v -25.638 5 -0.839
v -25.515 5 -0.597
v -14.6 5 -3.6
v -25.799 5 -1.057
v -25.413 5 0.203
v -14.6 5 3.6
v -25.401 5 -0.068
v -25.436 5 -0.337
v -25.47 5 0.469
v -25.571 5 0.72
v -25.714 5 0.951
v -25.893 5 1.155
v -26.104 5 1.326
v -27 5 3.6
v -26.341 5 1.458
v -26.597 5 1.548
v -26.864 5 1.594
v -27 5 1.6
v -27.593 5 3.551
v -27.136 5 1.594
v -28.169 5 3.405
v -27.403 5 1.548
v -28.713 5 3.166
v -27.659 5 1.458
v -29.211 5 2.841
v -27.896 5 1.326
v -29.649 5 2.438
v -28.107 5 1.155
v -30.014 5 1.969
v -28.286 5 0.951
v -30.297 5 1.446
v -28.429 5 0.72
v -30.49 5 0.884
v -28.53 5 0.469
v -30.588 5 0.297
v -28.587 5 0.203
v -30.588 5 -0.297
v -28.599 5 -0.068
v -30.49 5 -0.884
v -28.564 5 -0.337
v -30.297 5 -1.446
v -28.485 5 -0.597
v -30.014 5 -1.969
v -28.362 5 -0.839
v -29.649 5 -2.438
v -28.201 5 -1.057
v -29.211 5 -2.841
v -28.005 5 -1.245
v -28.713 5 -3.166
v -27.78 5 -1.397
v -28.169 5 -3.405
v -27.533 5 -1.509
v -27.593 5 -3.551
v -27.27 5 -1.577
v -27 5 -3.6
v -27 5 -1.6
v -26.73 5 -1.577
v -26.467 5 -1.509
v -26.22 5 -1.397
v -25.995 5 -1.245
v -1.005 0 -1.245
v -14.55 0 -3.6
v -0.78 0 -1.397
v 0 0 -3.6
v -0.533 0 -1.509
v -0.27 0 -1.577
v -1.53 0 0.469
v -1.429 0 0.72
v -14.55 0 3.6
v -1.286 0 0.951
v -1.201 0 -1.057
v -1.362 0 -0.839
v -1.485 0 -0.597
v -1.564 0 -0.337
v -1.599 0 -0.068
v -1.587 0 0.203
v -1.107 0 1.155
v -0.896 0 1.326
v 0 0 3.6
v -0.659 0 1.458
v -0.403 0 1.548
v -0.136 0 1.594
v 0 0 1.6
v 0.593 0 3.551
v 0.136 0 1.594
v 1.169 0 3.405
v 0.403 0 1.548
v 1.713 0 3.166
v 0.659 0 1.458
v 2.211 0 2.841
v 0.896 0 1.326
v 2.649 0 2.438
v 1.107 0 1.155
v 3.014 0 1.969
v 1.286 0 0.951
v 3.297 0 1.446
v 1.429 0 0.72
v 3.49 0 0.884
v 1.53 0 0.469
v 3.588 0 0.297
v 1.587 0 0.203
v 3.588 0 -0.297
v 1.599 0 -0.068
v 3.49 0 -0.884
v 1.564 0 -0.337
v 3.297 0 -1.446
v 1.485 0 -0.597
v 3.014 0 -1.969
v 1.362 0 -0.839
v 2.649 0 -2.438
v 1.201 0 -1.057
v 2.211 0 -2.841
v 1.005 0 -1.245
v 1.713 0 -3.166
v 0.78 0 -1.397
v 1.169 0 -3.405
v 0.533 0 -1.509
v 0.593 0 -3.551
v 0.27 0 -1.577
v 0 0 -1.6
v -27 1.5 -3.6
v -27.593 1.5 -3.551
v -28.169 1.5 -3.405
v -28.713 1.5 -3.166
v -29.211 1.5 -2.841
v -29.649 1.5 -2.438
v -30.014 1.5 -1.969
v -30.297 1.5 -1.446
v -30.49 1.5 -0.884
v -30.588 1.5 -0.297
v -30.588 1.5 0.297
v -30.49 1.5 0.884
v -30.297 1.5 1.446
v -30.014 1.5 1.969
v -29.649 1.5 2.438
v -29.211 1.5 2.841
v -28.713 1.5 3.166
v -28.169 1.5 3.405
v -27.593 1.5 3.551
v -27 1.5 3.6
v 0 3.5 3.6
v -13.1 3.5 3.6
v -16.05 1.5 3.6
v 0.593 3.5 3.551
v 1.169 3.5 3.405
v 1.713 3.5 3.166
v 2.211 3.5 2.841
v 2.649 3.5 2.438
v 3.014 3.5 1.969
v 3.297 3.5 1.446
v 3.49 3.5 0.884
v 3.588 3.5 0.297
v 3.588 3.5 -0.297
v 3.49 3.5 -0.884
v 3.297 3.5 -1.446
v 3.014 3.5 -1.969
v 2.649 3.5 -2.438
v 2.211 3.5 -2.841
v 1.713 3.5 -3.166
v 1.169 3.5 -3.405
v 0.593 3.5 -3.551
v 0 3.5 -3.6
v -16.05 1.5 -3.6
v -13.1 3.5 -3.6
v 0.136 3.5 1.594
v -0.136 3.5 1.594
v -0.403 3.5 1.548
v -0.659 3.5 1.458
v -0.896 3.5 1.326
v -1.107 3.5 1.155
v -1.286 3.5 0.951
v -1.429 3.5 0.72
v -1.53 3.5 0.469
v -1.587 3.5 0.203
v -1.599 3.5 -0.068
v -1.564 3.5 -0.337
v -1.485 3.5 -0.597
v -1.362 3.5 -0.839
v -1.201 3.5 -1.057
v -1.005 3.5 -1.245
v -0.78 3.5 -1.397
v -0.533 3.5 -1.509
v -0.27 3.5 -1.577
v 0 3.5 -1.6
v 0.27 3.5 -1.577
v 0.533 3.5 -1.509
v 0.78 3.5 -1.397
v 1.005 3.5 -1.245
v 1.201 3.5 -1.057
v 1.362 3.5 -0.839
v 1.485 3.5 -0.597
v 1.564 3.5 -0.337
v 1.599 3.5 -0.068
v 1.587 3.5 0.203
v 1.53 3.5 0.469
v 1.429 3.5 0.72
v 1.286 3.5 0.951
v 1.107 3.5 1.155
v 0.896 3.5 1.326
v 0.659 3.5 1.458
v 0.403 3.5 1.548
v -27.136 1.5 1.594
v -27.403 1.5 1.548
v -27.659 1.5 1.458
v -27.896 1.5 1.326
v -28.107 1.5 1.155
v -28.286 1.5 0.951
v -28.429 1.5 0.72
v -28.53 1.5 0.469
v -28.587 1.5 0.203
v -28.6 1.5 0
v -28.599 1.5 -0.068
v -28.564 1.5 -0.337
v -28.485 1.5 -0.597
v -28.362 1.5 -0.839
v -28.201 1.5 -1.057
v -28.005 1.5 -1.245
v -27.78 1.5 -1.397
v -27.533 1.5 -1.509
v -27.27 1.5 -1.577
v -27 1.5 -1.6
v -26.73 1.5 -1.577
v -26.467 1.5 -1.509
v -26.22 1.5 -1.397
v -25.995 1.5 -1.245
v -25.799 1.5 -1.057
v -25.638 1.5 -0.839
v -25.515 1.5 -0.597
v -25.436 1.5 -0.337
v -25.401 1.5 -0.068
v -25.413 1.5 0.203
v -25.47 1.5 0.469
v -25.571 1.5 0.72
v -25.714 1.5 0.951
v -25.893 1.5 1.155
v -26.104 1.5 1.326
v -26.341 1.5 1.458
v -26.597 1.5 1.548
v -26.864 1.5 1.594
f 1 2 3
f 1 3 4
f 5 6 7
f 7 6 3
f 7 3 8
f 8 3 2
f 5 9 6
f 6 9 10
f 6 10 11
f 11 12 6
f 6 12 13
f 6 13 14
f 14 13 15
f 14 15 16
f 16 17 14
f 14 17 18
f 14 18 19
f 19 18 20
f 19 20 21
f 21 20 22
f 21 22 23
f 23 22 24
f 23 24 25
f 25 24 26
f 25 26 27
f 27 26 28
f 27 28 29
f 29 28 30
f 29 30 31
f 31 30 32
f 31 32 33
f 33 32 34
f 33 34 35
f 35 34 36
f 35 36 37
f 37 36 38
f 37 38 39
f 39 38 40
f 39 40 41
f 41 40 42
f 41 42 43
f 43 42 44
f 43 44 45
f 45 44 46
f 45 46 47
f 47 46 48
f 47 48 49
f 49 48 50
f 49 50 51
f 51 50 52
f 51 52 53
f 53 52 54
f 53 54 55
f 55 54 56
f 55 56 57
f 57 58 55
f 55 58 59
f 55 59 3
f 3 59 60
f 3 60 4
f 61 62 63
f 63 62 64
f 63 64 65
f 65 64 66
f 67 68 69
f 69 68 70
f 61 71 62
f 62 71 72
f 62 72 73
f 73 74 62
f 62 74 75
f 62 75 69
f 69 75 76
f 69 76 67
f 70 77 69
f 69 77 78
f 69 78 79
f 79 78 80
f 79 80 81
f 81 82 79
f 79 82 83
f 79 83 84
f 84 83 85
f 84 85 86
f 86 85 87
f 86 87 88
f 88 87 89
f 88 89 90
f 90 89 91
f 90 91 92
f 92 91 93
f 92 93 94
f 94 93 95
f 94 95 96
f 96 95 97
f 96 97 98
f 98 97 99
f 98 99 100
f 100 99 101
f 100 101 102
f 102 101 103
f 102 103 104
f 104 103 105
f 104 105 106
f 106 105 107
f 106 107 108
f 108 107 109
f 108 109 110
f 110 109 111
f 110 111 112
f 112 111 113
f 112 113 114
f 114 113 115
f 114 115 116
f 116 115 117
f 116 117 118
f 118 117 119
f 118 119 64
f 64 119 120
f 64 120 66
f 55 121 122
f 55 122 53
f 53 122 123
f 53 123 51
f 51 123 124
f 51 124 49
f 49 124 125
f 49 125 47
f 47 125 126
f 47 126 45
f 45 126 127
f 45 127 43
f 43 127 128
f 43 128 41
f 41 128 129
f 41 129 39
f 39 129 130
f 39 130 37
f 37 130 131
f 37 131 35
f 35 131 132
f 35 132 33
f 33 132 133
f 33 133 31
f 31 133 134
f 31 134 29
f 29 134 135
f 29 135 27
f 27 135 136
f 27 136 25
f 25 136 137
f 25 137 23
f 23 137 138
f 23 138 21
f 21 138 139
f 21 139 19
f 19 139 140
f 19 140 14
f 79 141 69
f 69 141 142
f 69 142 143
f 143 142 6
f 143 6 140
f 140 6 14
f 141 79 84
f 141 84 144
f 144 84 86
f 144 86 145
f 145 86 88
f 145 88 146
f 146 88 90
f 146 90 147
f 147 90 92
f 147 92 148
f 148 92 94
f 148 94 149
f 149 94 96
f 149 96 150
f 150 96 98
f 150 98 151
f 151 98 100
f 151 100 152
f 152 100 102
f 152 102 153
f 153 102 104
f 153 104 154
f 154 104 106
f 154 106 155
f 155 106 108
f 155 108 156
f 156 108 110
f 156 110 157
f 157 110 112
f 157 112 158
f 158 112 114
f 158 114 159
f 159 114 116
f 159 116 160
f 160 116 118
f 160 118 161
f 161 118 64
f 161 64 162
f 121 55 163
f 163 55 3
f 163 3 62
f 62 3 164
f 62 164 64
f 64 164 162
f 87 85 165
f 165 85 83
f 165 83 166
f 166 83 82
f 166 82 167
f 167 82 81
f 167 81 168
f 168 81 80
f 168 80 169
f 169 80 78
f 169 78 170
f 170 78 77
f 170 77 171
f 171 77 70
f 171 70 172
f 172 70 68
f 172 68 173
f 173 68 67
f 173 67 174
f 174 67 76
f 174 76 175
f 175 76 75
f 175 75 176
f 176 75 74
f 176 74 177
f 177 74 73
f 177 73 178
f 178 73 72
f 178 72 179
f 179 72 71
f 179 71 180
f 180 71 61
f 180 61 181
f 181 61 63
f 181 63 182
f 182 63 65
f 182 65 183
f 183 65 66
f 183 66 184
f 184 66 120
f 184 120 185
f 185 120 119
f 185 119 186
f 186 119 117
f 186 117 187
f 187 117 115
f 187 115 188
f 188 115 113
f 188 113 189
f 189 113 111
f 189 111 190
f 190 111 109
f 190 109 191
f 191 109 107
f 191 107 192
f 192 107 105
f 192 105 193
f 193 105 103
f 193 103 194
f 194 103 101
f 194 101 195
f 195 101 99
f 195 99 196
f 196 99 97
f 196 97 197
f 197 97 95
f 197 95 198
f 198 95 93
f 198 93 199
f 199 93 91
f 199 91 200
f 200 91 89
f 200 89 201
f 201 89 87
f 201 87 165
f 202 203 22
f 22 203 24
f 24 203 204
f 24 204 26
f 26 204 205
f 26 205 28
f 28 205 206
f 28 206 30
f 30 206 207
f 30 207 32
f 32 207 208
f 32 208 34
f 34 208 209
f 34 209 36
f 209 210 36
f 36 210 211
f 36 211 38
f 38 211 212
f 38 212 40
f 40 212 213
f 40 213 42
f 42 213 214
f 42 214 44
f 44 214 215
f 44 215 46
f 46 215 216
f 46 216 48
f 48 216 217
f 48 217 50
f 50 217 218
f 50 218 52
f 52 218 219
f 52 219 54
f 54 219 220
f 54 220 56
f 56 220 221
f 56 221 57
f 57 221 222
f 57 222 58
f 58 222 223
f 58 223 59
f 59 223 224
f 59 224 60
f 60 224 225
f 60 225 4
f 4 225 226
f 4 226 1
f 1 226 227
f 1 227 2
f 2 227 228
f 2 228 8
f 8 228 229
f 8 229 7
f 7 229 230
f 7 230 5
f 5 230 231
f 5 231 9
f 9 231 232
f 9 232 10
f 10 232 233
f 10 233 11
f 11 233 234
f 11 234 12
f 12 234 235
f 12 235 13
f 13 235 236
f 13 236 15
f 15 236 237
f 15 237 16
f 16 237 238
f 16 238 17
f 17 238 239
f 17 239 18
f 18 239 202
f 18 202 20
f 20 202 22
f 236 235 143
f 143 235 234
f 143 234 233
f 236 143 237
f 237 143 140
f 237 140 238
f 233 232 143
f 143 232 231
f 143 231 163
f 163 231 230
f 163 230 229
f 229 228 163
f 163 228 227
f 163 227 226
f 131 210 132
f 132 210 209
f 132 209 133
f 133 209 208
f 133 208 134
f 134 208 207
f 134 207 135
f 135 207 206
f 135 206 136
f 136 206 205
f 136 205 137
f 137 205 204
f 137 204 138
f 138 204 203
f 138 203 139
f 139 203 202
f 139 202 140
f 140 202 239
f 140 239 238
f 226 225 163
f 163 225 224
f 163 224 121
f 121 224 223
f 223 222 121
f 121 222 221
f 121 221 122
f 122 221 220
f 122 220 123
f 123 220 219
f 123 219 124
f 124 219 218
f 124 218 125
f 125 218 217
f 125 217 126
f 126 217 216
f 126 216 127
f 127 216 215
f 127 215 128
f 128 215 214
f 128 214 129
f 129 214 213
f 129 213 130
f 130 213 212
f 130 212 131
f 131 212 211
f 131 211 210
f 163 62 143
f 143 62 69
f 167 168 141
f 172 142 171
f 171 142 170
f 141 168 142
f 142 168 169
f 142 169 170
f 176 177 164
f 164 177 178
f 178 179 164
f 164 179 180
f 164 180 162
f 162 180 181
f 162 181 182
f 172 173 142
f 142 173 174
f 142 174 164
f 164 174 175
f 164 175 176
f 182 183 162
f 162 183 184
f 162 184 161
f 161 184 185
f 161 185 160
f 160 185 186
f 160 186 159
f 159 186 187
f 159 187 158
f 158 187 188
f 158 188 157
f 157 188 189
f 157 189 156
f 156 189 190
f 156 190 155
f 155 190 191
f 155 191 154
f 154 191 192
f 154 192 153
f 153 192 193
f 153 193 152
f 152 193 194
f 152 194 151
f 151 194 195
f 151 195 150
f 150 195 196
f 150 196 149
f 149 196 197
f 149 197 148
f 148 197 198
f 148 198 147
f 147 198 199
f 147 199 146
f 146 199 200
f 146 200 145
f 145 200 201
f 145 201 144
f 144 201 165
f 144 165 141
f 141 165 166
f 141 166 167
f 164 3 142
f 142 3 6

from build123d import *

# Parameters (mm, degrees)
SKETCH1_R           = 1.6
BOSS_EXTRUDE1_DEPTH = 5
SKETCH2_W           = 3.6
SKETCH2_H           = 1.5
CUT_EXTRUDE1_DEPTH  = 32.830802692


with BuildPart() as part:
    # Sketch1 → Boss-Extrude1 (new body)
    with BuildSketch(Plane(origin=(0, 0, 0), x_dir=(1, 0, 0), z_dir=(0, 1, 0))):
        with BuildLine():
            Line((-27, 3.6), (0, 3.6))
            ThreePointArc((0, 3.6), (3.6, 0), (0, -3.6))
            Line((0, -3.6), (-27, -3.6))
            ThreePointArc((-27, -3.6), (-30.6, 0), (-27, 3.6))
        make_face()
        with Locations(Location((0, 0, 0), (0, 0, 270))):
            Circle(SKETCH1_R, mode=Mode.SUBTRACT)
        with Locations(Location((-27, 0, 0), (0, 0, 270))):
            Circle(SKETCH1_R, mode=Mode.SUBTRACT)
    extrude(amount=BOSS_EXTRUDE1_DEPTH)

    # Sketch2 → Cut-Extrude1 (cut, through all)
    with BuildSketch(Plane.XY.offset(3.6)):
        Polygon((-16.049747468, 1.5), (-27, 1.5), (-27, 0), (-14.549747468, 0), align=None)
        with Locations((-28.8, 0.75)):
            Rectangle(SKETCH2_W, SKETCH2_H)
        Polygon((0, 5), (-14.6, 5), (-13.1, 3.5), (0, 3.5), align=None)
        with Locations((1.8, 4.25)):
            Rectangle(SKETCH2_W, SKETCH2_H)
    extrude(amount=-CUT_EXTRUDE1_DEPTH, mode=Mode.SUBTRACT)


solid = part.part
